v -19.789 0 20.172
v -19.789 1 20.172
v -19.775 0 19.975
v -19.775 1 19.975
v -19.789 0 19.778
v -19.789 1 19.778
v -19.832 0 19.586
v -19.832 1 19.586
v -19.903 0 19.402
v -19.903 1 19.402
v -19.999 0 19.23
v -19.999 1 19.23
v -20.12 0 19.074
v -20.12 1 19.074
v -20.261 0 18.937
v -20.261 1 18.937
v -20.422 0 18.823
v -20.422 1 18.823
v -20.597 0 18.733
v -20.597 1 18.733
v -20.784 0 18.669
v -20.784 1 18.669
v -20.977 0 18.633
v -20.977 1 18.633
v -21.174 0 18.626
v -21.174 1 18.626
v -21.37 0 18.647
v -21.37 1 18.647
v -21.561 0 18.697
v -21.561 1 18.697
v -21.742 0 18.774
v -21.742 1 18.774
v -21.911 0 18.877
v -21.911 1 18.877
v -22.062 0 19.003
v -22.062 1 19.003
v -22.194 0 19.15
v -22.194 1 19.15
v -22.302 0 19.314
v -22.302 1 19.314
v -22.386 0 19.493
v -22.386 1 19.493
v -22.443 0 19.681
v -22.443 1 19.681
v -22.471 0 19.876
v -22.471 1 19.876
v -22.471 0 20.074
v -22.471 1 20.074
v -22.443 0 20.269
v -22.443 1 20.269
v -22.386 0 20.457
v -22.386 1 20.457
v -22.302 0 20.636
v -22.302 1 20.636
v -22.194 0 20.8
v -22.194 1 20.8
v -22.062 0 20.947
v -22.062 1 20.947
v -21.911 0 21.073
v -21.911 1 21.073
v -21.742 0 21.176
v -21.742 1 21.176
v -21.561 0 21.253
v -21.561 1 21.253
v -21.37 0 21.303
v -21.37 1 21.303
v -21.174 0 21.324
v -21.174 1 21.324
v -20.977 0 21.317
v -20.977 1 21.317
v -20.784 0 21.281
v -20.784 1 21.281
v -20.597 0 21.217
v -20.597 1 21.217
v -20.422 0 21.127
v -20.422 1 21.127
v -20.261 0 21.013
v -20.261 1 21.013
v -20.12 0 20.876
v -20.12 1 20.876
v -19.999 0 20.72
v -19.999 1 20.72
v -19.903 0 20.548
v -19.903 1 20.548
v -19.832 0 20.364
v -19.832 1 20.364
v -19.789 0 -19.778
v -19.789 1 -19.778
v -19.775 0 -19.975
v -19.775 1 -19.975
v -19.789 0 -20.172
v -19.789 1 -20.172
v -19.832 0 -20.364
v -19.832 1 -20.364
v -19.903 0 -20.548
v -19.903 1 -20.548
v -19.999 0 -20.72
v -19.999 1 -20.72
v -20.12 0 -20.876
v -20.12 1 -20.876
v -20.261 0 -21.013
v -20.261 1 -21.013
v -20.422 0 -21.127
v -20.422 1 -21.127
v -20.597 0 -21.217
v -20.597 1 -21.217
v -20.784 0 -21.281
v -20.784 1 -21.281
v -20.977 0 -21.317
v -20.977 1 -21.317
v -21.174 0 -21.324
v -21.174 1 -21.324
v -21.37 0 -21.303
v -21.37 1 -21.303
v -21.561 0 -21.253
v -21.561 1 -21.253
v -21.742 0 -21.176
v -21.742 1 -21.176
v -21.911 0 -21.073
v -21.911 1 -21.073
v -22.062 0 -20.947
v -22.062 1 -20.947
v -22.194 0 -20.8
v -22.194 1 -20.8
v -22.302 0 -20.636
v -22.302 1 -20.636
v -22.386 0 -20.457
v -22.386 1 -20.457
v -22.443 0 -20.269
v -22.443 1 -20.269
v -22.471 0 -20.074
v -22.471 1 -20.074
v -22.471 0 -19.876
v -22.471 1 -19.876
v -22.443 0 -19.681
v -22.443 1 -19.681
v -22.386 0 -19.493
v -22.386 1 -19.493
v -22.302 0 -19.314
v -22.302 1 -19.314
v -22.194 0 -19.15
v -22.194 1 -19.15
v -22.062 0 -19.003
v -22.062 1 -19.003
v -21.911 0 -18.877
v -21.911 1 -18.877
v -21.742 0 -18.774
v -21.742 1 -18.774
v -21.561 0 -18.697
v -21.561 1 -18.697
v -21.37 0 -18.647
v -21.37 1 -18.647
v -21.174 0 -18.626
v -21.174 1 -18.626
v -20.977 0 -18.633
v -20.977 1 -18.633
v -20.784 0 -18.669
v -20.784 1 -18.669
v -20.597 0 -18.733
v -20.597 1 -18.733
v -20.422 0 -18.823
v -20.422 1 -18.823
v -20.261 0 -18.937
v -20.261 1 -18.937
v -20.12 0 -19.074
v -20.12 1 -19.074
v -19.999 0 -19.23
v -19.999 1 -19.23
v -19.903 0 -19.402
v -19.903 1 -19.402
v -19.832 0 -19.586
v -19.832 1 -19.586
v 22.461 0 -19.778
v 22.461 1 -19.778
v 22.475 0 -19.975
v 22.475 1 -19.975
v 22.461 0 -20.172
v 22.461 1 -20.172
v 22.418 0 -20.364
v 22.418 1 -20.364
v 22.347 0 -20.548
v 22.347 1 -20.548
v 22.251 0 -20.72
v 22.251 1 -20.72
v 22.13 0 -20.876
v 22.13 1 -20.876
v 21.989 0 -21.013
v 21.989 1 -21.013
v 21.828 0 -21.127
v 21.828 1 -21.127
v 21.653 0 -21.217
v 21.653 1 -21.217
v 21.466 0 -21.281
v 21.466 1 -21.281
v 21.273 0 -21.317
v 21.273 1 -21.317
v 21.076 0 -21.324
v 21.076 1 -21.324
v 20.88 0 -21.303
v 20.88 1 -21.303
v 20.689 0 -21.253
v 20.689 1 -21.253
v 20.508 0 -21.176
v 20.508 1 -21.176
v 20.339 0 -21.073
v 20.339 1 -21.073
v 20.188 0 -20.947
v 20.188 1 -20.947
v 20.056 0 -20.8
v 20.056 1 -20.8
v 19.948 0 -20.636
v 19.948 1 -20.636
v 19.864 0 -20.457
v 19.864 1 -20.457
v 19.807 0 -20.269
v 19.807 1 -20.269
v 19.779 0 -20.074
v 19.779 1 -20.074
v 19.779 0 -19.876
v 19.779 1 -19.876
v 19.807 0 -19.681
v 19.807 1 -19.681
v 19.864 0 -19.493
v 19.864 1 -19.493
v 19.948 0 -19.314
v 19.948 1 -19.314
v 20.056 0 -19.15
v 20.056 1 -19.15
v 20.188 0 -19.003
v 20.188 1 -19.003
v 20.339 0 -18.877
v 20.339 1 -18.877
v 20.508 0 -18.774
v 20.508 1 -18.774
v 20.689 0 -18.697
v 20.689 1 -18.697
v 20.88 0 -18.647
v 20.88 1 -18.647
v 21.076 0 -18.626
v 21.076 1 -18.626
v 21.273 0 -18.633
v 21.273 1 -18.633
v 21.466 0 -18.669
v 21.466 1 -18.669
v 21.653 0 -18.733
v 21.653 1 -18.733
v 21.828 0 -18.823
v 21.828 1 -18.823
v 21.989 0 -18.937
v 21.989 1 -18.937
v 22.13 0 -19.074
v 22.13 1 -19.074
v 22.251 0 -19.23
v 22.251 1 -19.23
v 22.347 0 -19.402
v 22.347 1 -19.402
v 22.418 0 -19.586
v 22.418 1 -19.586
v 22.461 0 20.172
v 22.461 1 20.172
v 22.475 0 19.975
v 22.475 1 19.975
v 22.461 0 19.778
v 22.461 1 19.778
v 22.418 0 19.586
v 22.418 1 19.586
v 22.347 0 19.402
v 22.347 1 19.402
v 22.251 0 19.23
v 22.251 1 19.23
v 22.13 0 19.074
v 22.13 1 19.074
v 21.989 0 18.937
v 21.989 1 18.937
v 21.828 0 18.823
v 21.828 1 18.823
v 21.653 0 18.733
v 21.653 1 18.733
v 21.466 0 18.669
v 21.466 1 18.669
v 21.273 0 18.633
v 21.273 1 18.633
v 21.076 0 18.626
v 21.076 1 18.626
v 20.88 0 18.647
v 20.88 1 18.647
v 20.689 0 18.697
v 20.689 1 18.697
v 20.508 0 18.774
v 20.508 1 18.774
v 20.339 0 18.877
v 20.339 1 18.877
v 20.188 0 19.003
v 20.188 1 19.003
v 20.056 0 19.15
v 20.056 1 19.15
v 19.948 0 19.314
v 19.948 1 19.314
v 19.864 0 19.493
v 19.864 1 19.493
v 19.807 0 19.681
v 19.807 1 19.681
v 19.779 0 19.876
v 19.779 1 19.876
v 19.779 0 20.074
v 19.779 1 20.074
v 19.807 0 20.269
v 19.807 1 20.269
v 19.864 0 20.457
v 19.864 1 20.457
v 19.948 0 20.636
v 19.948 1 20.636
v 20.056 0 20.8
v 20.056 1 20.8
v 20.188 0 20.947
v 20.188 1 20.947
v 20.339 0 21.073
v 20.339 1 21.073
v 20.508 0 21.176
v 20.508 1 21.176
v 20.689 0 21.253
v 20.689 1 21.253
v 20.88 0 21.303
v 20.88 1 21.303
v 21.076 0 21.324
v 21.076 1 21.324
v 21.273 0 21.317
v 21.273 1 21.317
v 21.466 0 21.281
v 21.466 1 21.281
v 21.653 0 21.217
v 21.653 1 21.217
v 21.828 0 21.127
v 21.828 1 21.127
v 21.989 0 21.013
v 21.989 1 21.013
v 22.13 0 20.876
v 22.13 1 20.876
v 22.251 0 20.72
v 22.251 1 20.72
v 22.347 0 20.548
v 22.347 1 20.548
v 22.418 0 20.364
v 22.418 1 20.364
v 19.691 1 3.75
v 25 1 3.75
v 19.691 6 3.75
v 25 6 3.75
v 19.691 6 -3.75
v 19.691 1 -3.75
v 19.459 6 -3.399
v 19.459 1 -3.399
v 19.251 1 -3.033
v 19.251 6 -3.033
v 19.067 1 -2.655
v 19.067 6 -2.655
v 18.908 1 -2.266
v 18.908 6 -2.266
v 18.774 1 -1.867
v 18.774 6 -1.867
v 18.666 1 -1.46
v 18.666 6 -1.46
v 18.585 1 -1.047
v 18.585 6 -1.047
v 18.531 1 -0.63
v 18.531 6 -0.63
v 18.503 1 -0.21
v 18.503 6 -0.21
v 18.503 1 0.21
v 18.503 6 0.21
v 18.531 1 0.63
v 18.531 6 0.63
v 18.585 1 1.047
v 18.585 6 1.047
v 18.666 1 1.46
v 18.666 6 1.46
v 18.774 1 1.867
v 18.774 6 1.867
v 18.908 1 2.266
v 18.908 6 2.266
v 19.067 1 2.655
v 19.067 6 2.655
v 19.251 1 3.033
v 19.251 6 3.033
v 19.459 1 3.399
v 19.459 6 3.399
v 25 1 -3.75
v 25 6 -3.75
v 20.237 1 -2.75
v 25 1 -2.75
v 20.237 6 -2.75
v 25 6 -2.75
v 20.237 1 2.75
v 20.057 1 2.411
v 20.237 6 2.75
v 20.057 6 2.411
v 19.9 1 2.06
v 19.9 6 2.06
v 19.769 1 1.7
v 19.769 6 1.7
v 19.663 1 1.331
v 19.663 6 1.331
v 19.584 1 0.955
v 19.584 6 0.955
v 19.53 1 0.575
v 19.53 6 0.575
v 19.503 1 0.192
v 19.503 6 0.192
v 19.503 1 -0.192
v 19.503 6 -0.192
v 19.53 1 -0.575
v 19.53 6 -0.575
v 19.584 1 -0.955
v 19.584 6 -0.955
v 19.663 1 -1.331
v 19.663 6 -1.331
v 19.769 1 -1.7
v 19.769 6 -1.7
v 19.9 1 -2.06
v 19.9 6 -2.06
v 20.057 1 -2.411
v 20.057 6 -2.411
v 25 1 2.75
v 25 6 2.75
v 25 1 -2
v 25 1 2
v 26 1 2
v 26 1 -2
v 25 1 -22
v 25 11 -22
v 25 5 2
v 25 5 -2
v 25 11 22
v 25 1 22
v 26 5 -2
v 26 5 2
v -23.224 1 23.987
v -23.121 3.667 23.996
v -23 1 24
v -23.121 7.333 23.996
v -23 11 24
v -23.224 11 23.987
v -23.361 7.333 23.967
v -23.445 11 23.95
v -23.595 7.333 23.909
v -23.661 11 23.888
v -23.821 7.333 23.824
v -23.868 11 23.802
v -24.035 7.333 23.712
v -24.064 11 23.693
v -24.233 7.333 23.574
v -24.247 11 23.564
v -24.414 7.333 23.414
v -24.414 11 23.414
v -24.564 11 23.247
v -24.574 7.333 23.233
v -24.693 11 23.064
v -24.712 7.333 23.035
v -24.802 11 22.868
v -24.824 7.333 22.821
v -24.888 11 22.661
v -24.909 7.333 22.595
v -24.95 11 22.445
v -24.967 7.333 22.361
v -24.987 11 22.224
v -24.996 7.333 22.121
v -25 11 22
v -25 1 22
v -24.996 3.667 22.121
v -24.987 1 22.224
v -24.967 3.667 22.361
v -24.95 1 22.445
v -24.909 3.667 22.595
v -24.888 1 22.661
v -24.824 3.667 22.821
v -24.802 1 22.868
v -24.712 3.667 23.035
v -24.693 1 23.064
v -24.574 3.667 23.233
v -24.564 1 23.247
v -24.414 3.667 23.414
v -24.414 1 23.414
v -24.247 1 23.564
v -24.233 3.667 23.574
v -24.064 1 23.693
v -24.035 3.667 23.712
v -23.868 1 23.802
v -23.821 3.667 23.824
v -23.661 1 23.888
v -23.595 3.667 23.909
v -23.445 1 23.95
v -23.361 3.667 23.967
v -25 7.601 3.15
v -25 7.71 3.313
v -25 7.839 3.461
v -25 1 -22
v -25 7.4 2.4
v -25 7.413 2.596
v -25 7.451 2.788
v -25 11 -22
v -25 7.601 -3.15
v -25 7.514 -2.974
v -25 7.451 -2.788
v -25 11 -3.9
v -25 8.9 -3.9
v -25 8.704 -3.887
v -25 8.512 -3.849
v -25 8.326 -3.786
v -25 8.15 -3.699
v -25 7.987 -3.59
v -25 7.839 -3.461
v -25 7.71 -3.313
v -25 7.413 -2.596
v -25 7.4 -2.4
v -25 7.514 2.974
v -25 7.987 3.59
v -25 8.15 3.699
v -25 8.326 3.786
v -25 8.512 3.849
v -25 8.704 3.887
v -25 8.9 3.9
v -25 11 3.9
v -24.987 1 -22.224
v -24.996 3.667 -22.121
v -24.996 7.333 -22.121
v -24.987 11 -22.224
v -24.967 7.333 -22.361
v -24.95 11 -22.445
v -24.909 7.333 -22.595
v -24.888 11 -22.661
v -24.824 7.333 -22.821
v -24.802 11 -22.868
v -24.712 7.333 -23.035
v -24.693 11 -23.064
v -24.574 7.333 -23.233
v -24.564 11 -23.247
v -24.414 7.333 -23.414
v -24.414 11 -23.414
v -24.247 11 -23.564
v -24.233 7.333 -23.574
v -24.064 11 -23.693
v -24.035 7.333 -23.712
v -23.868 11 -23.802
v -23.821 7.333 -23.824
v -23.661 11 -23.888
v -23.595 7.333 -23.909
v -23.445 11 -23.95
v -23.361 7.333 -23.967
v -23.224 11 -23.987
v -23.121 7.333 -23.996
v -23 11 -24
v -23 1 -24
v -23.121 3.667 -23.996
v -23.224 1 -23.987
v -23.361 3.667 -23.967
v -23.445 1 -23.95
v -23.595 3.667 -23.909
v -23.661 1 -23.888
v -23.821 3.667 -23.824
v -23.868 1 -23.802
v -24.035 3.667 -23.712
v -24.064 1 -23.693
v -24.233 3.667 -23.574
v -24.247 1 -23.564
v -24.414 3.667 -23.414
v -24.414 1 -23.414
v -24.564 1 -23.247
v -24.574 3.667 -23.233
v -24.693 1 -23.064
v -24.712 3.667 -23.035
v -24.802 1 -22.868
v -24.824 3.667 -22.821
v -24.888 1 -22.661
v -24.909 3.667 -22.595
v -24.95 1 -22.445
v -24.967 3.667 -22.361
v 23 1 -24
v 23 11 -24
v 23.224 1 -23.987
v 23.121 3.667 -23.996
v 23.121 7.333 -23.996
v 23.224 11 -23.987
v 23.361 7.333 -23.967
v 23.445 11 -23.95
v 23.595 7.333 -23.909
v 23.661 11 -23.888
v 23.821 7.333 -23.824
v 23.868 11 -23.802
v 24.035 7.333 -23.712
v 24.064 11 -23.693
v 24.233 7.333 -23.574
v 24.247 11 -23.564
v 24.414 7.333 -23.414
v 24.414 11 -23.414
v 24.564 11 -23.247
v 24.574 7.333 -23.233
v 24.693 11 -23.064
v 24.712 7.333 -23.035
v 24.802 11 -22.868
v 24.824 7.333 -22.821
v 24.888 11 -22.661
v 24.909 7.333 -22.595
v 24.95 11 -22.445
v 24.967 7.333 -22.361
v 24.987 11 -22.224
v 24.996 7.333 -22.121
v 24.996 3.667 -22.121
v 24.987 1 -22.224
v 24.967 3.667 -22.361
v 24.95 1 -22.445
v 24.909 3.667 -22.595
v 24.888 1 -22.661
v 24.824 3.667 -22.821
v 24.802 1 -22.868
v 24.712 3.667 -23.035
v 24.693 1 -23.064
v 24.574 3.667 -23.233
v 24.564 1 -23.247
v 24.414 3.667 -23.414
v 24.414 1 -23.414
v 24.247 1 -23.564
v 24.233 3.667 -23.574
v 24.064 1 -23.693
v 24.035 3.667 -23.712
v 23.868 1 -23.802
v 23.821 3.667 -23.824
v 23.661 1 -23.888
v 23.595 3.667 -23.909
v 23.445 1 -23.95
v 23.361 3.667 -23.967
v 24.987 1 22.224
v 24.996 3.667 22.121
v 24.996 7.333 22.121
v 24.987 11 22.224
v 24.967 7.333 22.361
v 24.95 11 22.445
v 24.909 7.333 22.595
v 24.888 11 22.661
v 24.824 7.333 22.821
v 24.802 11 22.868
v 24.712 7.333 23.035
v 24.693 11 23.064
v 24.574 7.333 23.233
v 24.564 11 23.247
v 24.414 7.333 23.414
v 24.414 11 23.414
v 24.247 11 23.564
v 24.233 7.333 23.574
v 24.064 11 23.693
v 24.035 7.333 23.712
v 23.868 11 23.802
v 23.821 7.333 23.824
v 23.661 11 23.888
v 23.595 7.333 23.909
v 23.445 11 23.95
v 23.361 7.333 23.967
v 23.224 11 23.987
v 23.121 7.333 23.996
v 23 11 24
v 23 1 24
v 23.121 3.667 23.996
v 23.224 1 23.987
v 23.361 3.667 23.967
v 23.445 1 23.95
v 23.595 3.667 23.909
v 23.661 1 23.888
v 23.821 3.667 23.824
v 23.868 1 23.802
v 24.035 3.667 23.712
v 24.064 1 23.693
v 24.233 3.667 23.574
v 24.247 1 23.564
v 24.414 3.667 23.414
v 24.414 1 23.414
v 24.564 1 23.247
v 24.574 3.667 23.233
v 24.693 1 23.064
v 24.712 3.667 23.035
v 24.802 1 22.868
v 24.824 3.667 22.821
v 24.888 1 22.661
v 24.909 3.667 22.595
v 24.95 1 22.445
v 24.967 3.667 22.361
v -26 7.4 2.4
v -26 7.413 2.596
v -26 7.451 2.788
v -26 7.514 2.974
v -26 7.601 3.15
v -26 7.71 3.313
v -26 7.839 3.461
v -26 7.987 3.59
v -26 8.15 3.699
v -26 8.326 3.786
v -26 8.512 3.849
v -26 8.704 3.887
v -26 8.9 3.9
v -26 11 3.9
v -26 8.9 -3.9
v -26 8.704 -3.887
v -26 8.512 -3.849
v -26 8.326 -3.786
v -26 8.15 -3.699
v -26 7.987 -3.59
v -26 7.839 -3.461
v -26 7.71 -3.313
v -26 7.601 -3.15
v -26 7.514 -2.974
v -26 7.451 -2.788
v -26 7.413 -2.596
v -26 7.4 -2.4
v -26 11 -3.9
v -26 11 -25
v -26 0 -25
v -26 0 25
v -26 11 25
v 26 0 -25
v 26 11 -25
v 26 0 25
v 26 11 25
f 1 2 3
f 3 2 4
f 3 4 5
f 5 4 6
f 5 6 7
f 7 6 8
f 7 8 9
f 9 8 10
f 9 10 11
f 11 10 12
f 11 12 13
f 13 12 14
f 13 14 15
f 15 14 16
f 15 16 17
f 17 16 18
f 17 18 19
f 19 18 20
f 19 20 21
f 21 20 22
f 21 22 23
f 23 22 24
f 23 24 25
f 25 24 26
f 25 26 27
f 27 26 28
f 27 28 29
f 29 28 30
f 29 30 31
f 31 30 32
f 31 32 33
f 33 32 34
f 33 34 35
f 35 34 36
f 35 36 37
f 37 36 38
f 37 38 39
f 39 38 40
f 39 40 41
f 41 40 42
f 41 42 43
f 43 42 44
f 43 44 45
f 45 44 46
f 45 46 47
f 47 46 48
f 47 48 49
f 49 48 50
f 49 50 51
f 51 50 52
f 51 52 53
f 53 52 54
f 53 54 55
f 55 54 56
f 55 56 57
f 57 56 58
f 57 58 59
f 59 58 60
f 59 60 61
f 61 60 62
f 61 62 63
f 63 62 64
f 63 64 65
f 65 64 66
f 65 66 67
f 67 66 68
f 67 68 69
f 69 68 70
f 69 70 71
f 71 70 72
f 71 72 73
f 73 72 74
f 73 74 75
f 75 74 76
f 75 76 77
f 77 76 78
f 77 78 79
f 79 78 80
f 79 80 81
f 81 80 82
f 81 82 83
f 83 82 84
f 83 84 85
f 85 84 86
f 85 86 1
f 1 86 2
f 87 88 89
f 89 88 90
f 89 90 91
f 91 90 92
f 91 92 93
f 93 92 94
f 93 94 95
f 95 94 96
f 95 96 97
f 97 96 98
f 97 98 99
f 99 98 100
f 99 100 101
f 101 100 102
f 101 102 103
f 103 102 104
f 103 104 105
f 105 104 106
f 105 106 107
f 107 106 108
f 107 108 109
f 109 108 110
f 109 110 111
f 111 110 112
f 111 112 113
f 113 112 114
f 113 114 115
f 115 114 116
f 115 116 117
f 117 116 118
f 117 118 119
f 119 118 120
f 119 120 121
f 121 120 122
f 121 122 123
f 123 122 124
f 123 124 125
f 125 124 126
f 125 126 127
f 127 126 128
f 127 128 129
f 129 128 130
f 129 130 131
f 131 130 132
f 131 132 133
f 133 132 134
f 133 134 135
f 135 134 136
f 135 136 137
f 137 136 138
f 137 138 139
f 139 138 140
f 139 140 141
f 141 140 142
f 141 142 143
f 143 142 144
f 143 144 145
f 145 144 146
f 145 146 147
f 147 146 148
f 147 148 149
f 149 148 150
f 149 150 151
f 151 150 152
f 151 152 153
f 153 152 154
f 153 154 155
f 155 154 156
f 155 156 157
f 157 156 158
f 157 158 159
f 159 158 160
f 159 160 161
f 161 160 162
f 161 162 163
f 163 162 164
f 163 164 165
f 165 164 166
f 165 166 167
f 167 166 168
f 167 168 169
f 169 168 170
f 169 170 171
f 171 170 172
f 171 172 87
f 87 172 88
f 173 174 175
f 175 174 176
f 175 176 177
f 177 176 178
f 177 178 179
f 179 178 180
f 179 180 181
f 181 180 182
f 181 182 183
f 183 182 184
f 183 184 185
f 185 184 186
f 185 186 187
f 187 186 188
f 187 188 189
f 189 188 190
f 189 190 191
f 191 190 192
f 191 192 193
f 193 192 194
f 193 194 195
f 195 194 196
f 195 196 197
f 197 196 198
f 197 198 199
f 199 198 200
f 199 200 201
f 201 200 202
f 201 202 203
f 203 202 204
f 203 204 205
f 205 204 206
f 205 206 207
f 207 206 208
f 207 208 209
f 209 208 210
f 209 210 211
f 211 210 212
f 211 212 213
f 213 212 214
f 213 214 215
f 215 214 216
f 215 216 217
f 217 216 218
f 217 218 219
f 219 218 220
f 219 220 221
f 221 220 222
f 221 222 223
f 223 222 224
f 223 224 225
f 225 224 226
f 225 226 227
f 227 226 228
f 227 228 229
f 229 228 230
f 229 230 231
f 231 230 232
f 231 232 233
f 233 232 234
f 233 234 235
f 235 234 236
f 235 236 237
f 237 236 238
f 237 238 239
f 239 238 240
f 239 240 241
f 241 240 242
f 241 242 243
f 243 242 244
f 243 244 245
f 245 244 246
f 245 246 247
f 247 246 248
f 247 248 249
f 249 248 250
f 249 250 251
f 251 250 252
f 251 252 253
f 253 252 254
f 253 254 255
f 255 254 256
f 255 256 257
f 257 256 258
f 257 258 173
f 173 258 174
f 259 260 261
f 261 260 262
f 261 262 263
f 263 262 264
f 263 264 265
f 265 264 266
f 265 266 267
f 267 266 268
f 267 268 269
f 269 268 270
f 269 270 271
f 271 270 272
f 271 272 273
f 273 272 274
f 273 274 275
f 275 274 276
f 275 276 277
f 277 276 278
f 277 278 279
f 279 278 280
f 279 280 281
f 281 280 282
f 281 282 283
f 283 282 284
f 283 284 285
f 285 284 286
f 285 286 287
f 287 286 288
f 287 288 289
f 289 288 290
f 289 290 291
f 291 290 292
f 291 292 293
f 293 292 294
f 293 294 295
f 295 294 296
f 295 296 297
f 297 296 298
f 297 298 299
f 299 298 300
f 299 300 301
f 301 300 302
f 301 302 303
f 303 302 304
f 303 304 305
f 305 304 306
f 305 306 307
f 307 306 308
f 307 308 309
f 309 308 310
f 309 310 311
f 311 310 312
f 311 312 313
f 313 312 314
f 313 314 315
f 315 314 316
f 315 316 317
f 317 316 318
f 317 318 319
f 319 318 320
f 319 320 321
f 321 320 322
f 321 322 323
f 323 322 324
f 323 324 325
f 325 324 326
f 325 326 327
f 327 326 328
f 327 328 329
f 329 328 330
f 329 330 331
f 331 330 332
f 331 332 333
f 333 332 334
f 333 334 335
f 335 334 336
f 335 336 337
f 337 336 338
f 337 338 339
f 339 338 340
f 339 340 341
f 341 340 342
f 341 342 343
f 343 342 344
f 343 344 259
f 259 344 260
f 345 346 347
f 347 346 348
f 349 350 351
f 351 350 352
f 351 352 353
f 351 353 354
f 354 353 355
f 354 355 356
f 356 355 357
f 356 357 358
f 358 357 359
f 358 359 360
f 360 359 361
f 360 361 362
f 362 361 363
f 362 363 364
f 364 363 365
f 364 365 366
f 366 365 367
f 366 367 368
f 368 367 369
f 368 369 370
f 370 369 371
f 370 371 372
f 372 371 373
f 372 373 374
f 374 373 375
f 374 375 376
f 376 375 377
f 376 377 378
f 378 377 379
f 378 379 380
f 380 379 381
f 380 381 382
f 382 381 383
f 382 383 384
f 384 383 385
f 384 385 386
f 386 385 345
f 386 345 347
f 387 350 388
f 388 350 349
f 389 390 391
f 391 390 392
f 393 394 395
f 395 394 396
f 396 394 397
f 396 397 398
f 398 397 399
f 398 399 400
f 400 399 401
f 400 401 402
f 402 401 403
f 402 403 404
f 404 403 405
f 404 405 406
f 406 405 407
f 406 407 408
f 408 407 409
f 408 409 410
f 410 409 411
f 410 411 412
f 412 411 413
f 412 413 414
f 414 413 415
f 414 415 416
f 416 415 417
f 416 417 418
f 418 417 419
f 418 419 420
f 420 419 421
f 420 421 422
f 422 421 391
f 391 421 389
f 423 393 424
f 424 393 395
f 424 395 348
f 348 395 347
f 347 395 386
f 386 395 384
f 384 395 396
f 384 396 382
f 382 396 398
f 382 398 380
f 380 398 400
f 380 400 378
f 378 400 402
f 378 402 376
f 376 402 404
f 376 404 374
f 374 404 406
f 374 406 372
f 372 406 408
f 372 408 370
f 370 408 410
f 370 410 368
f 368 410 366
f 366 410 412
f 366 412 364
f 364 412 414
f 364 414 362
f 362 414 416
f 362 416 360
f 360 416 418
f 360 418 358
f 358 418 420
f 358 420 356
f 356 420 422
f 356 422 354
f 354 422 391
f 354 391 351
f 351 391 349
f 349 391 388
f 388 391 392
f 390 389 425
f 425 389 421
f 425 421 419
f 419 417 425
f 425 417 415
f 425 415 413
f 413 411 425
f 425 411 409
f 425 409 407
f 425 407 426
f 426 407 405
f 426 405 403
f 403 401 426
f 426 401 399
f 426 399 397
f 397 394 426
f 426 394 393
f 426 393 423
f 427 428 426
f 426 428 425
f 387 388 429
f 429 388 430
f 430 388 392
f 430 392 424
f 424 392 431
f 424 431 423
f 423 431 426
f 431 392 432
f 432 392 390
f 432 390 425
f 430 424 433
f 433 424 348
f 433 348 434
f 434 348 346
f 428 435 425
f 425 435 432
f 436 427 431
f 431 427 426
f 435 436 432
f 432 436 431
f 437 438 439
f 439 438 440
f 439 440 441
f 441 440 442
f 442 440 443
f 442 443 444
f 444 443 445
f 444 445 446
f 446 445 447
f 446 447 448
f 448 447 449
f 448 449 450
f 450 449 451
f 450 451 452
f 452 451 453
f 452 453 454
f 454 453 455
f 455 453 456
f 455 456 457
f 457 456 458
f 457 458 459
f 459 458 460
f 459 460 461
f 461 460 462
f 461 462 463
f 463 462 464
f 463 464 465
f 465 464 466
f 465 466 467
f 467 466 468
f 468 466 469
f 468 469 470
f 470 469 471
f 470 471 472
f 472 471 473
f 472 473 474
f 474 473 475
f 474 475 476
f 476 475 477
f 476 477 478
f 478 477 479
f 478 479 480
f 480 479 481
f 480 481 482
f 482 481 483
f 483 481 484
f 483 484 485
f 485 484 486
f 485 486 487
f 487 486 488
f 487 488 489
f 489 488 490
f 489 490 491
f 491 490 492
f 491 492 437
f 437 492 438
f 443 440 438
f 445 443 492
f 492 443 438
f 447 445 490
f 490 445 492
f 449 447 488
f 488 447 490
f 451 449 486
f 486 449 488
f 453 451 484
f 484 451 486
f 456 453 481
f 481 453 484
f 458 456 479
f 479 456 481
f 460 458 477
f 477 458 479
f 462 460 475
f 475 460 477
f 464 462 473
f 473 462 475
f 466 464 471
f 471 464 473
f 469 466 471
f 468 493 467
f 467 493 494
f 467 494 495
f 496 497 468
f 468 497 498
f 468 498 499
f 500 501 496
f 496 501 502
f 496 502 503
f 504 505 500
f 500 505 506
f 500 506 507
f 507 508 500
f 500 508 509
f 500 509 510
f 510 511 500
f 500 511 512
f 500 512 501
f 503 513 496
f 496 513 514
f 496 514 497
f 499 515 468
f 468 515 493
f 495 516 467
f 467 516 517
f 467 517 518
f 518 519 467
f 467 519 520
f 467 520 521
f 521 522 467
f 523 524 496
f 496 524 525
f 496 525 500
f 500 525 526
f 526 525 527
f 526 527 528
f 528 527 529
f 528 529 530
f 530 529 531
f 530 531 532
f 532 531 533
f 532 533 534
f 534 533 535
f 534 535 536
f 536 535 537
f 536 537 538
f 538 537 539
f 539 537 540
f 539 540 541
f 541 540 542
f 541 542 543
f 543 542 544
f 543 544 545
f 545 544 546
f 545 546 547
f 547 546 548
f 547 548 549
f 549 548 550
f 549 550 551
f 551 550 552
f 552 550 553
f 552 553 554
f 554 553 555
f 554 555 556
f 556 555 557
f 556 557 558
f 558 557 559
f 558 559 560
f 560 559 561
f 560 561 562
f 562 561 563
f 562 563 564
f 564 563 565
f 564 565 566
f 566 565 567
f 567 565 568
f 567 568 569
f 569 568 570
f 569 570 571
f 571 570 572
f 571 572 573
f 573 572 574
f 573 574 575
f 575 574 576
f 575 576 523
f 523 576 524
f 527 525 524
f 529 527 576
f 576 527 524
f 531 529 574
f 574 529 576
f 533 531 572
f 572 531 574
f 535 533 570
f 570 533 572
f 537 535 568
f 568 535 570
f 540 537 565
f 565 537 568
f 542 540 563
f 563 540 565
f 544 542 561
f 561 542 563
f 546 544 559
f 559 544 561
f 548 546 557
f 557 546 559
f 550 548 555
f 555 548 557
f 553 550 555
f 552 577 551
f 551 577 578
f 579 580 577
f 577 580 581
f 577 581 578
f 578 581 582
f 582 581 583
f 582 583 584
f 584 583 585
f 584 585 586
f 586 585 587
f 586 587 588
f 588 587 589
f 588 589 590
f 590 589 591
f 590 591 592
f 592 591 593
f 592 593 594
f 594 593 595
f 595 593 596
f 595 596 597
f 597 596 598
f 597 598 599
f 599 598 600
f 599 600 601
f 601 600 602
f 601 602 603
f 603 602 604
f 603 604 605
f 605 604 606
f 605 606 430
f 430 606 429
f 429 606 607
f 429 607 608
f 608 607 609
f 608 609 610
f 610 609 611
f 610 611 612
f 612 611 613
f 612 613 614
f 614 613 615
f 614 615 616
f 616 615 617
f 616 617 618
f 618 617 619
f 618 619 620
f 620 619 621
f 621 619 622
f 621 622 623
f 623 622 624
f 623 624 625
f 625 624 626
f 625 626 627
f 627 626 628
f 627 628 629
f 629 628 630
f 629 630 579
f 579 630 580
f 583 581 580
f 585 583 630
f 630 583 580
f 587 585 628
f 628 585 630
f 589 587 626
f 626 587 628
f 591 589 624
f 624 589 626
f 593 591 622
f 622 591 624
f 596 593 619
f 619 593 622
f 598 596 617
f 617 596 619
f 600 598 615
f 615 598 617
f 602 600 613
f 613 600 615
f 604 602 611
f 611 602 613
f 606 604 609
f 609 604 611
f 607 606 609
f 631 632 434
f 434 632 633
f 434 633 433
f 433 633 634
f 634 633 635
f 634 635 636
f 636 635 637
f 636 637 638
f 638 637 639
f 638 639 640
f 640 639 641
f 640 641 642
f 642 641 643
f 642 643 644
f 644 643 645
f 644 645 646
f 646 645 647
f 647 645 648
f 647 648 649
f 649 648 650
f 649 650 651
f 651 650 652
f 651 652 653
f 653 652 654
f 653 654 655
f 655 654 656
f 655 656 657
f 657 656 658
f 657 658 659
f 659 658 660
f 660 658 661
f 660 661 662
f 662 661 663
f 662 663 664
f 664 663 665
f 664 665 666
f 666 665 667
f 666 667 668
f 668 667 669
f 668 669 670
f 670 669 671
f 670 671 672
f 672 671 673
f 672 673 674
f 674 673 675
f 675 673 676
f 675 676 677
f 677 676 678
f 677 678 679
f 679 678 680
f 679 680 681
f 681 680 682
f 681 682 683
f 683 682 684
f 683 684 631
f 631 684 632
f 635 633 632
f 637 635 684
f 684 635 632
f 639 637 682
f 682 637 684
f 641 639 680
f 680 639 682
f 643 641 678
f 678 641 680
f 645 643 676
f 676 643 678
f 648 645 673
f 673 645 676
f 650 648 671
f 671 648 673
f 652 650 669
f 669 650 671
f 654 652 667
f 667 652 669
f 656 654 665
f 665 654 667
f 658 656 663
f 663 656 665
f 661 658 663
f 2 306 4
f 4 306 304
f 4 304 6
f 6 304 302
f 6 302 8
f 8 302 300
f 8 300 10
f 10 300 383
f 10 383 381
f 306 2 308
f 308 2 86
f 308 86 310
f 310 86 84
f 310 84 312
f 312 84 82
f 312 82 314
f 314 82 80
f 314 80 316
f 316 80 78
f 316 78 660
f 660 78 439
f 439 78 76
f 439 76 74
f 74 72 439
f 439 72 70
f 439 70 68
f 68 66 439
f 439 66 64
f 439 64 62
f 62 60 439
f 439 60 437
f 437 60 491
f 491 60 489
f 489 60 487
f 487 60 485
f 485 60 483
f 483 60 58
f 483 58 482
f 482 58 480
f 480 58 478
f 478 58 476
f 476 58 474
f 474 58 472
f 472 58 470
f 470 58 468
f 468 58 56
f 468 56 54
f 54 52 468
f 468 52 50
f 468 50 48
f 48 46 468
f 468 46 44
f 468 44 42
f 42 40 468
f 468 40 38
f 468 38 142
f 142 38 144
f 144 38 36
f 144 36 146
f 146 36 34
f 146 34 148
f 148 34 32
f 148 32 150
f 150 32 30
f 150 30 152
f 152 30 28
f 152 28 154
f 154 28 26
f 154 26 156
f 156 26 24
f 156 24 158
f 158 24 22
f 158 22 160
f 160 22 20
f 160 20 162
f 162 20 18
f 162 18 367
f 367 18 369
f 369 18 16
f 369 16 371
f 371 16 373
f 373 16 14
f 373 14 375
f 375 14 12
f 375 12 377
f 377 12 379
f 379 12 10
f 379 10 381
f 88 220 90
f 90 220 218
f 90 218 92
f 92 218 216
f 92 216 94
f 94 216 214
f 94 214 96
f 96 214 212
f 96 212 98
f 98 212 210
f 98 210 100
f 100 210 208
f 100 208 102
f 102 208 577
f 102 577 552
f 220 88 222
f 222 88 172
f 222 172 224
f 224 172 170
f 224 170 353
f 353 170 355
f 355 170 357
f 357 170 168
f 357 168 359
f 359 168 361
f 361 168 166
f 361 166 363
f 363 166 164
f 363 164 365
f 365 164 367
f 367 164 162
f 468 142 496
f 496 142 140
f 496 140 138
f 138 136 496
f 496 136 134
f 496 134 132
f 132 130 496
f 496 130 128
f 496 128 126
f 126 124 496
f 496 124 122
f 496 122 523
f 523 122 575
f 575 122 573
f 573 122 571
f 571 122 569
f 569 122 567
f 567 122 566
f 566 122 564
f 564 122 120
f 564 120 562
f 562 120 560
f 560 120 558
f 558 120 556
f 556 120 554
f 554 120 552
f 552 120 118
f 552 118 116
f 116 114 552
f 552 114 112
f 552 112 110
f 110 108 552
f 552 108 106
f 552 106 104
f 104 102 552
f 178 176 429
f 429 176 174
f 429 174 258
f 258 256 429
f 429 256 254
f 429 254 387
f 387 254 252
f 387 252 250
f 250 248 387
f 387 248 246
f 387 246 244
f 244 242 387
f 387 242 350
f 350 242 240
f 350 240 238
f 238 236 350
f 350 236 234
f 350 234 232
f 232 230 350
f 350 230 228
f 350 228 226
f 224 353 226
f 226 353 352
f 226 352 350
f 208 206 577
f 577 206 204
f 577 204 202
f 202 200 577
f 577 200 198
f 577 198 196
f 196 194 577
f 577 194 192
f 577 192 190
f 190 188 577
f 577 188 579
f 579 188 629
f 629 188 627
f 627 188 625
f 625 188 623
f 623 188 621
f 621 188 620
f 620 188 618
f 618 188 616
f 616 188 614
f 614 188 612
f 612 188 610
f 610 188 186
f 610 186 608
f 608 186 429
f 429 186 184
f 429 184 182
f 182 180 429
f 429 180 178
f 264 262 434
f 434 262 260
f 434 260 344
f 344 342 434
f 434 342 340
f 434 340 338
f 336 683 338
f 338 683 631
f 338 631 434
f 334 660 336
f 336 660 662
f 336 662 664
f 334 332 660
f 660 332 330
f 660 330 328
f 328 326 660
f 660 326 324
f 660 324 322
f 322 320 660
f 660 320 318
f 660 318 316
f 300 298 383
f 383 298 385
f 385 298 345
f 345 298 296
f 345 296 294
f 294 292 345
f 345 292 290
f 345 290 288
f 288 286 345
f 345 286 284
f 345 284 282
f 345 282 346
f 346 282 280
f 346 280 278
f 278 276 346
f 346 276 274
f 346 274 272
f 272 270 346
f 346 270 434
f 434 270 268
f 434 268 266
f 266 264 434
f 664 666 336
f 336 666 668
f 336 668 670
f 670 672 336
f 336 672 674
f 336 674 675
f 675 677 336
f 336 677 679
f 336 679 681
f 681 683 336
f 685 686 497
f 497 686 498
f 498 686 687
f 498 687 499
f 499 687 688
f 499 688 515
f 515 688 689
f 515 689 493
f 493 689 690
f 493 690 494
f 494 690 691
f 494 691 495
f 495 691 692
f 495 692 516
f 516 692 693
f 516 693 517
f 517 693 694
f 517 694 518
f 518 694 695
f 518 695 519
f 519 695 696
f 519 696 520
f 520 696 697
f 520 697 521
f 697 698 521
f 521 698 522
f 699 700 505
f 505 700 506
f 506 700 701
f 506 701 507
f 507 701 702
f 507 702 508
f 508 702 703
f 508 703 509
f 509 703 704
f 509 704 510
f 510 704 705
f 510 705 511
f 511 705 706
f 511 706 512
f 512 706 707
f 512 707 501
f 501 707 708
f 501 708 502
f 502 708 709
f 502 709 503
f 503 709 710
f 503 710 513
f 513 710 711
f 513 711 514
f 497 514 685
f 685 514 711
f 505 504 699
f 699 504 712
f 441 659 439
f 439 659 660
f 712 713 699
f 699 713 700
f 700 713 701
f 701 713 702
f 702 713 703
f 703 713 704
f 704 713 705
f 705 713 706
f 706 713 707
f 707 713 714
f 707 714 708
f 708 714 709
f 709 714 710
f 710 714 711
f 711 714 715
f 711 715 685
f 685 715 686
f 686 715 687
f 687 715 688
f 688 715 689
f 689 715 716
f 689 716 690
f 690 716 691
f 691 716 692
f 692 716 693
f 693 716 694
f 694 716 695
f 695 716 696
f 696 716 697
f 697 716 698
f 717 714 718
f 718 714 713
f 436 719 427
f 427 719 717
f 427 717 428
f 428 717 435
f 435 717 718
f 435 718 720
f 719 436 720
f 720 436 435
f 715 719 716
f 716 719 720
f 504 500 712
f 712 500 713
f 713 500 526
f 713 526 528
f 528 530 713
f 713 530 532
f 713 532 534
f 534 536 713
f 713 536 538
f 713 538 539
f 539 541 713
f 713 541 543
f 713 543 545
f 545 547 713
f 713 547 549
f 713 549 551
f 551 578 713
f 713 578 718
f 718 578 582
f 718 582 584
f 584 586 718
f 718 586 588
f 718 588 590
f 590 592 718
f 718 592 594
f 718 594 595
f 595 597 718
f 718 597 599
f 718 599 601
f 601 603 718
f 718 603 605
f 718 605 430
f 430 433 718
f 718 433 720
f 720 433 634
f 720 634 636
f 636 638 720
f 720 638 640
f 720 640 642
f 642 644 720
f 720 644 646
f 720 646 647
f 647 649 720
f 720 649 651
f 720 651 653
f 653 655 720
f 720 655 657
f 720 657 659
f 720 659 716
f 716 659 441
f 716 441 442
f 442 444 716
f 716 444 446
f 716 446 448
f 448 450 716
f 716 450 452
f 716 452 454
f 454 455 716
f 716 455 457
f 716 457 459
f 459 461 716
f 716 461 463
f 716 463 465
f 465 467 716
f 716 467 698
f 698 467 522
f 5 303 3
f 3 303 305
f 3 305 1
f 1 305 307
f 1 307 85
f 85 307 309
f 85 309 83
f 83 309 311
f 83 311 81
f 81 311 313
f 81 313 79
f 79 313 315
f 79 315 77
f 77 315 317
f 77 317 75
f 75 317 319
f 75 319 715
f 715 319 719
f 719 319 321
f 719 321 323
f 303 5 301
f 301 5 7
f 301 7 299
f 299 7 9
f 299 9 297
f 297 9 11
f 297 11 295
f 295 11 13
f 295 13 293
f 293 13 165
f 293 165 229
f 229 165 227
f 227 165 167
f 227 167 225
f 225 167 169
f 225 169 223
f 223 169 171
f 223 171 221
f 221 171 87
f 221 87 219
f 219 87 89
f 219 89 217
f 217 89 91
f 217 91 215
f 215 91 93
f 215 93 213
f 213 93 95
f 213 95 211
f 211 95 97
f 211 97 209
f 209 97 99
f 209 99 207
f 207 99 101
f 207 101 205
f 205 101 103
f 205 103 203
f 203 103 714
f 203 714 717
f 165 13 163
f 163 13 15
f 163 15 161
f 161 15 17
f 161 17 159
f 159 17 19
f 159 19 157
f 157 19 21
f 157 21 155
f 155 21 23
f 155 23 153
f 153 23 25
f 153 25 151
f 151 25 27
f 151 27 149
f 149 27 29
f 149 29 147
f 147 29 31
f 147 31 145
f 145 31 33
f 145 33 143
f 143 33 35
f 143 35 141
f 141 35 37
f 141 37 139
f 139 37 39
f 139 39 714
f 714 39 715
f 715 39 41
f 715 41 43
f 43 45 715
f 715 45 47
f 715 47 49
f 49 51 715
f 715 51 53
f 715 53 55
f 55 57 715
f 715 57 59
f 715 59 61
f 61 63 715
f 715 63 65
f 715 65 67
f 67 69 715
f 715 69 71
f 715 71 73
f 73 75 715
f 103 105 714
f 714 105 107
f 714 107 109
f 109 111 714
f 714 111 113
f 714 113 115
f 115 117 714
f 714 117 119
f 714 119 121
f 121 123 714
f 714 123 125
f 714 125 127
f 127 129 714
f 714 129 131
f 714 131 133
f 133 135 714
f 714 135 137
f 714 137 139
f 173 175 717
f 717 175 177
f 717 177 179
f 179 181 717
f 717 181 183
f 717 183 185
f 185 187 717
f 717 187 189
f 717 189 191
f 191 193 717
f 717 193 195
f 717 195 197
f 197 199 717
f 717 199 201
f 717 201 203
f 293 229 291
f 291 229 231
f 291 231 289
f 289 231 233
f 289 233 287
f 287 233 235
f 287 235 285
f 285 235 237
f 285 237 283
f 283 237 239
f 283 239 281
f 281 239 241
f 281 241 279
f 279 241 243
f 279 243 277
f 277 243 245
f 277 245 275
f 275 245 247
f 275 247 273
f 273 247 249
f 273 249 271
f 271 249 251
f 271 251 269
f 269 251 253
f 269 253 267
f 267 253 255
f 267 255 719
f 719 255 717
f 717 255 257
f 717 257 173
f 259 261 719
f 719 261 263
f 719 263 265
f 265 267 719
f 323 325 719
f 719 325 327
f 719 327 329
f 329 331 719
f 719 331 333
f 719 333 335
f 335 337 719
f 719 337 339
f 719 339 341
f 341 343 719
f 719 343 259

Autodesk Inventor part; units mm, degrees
ref_plane "YZ Plane" through (0, 0, 0) normal (1, 0, 0) x (0, 1, 0)
ref_plane "XZ Plane" through (0, 0, 0) normal (0, 1, 0) x (-1, 0, 0)
ref_plane "XY Plane" through (0, 0, 0) normal (0, 0, 1) x (1, 0, 0)
sketch "Эскиз1" plane through (0, 0, 0) normal (0, 1, 0) x (-1, 0, 0)
  line L0 (26, 25) -> (-26, 25)
  line L1 (-26, 25) -> (-26, -25)
  line L2 (-26, -25) -> (26, -25)
  line L3 (26, -25) -> (26, 25)
  line L4 (36.4, 0) -> (-36.4, 0) projected
  line L5 (0, -35) -> (0, 35) projected
  point P0 (0, 0)
  dimension "d0" = 52
  dimension "d1" = 50
extrude "Выдавливание1" add sketch "Эскиз1" along normal blind 11
shell "Оболочка1" thickness 1 removed faces 1 at (-8.6667, 11, -8.3333)
sketch "Эскиз2" plane through (-26, 0, -25) normal (-1, 0, 0) x (0, 0, 1)
  line L0 (28.9, 7.4) -> (21.1, 7.4)
  line L1 (21.1, 7.4) -> (21.1, 11)
  line L2 (21.1, 11) -> (28.9, 11)
  line L3 (28.9, 11) -> (28.9, 7.4)
  line L4 (0, 0) -> (50, 0) projected
  line L5 (25, -2.2) -> (25, 13.2) projected
  line L6 (0, 11) -> (50, 11) projected
  point P0 (25, 0)
  dimension "d5" = 7.4
  dimension "d7" = 7.8
extrude "Выдавливание2" cut sketch "Эскиз2" against normal up to surface (1 mm away)
fillet "Сопряжение1" radius 1.5 2 edges at (-25.5, 7.4, -3.9) (-25.5, 7.4, 3.9)
fillet "Сопряжение2" radius 2 4 edges at (25, 6, 24) (25, 6, -24) (-25, 6, -24) (-25, 6, 24)
sketch "Эскиз4" plane through (25, 1, -22) normal (-1, 0, 0) x (0, 0, 1)
  line L0 (44, 0) -> (0, 0) projected
  line L1 (24, 0) -> (20, 0)
  line L2 (20, 0) -> (20, 4)
  line L3 (20, 4) -> (24, 4)
  line L4 (24, 4) -> (24, 0)
  line L5 (22, -3.2) -> (22, 12.2) projected
  point P0 (22, -1)
  dimension "d16" = 4
  dimension "d17" = 4
extrude "Выдавливание4" cut sketch "Эскиз4" against normal through all
sketch "Эскиз5" plane through (-23, 1, 24) normal (0, 1, 0) x (1, 0, 0)
  line L0 (48, 26) -> (48, 22) construction
  circle A0 centre (48, 24) radius 7 construction
  line L1 (48, 26) -> (48, 46) construction
  line L2 (48, 26.75) -> (41, 26.75) construction
  line L3 (41, 26.75) -> (41, 21.25) construction
  line L4 (41, 21.25) -> (48, 21.25) construction
  line L5 (48, 21.25) -> (48, 26.75) construction
  line L6 (-14.64, 24) -> (66.84, 24) construction
  line L7 (48, 2) -> (48, 22) construction
  line L8 (41, 21.25) -> (48, 21.25) construction
  line L9 (48, 21.25) -> (48, 20.25) construction
  line L10 (48, 20.25) -> (41, 20.25) construction
  line L11 (41, 20.25) -> (41, 21.25) construction
  line L12 (41, 26.75) -> (48, 26.75) construction
  line L13 (48, 26.75) -> (48, 27.75) construction
  line L14 (48, 27.75) -> (41, 27.75) construction
  line L15 (41, 27.75) -> (41, 26.75) construction
  arc A1 (42.1104, 21.25) -> (42.6908, 20.25) centre (48, 24) ccw
  arc A2 (42.6908, 27.75) -> (42.1104, 26.75) centre (48, 24) ccw
  arc A3 (42.1104, 26.75) -> (42.1104, 21.25) centre (48, 24) ccw
  arc A4 (43.2369, 26.75) -> (43.2369, 21.25) centre (48, 24) ccw
  line L16 (43.2369, 26.75) -> (48, 26.75)
  line L17 (48, 26.75) -> (48, 27.75)
  line L18 (48, 27.75) -> (42.6908, 27.75)
  line L19 (43.2369, 21.25) -> (48, 21.25)
  line L20 (48, 21.25) -> (48, 20.25)
  line L21 (42.6908, 20.25) -> (48, 20.25)
  point P0 (23, 24)
  dimension "d20" = 14
  dimension "d21" = 5.5
  dimension "d22" = 1
  dimension "d23" = 1
  dimension "d24" = 0.5
  dimension "d25" = 1
extrude "Выдавливание5" add sketch "Эскиз5" along normal blind 5
sketch "Эскиз8" plane through (-23, 1, -24) normal (0, 1, 0) x (1, 0, 0)
  line L0 (1.875, -4.025) -> (44.125, -4.025) construction
  line L1 (44.125, -4.025) -> (44.125, -43.975) construction
  line L2 (44.125, -43.975) -> (1.875, -43.975) construction
  line L3 (1.875, -43.975) -> (1.875, -4.025) construction
  line L4 (23, 11) -> (23, -59) construction
  line L5 (-13.4, -24) -> (59.4, -24) construction
  circle A0 centre (1.875, -4.025) radius 1.35
  circle A1 centre (44.125, -4.025) radius 1.35
  circle A2 centre (1.875, -43.975) radius 1.35
  circle A3 centre (44.125, -43.975) radius 1.35
  point P0 (23, -24)
  dimension "d33" = 42.25
  dimension "d34" = 39.95
  dimension "d35" = 2.7
extrude "Выдавливание7" cut sketch "Эскиз8" against normal through all
properties part number "BOTTOM"
